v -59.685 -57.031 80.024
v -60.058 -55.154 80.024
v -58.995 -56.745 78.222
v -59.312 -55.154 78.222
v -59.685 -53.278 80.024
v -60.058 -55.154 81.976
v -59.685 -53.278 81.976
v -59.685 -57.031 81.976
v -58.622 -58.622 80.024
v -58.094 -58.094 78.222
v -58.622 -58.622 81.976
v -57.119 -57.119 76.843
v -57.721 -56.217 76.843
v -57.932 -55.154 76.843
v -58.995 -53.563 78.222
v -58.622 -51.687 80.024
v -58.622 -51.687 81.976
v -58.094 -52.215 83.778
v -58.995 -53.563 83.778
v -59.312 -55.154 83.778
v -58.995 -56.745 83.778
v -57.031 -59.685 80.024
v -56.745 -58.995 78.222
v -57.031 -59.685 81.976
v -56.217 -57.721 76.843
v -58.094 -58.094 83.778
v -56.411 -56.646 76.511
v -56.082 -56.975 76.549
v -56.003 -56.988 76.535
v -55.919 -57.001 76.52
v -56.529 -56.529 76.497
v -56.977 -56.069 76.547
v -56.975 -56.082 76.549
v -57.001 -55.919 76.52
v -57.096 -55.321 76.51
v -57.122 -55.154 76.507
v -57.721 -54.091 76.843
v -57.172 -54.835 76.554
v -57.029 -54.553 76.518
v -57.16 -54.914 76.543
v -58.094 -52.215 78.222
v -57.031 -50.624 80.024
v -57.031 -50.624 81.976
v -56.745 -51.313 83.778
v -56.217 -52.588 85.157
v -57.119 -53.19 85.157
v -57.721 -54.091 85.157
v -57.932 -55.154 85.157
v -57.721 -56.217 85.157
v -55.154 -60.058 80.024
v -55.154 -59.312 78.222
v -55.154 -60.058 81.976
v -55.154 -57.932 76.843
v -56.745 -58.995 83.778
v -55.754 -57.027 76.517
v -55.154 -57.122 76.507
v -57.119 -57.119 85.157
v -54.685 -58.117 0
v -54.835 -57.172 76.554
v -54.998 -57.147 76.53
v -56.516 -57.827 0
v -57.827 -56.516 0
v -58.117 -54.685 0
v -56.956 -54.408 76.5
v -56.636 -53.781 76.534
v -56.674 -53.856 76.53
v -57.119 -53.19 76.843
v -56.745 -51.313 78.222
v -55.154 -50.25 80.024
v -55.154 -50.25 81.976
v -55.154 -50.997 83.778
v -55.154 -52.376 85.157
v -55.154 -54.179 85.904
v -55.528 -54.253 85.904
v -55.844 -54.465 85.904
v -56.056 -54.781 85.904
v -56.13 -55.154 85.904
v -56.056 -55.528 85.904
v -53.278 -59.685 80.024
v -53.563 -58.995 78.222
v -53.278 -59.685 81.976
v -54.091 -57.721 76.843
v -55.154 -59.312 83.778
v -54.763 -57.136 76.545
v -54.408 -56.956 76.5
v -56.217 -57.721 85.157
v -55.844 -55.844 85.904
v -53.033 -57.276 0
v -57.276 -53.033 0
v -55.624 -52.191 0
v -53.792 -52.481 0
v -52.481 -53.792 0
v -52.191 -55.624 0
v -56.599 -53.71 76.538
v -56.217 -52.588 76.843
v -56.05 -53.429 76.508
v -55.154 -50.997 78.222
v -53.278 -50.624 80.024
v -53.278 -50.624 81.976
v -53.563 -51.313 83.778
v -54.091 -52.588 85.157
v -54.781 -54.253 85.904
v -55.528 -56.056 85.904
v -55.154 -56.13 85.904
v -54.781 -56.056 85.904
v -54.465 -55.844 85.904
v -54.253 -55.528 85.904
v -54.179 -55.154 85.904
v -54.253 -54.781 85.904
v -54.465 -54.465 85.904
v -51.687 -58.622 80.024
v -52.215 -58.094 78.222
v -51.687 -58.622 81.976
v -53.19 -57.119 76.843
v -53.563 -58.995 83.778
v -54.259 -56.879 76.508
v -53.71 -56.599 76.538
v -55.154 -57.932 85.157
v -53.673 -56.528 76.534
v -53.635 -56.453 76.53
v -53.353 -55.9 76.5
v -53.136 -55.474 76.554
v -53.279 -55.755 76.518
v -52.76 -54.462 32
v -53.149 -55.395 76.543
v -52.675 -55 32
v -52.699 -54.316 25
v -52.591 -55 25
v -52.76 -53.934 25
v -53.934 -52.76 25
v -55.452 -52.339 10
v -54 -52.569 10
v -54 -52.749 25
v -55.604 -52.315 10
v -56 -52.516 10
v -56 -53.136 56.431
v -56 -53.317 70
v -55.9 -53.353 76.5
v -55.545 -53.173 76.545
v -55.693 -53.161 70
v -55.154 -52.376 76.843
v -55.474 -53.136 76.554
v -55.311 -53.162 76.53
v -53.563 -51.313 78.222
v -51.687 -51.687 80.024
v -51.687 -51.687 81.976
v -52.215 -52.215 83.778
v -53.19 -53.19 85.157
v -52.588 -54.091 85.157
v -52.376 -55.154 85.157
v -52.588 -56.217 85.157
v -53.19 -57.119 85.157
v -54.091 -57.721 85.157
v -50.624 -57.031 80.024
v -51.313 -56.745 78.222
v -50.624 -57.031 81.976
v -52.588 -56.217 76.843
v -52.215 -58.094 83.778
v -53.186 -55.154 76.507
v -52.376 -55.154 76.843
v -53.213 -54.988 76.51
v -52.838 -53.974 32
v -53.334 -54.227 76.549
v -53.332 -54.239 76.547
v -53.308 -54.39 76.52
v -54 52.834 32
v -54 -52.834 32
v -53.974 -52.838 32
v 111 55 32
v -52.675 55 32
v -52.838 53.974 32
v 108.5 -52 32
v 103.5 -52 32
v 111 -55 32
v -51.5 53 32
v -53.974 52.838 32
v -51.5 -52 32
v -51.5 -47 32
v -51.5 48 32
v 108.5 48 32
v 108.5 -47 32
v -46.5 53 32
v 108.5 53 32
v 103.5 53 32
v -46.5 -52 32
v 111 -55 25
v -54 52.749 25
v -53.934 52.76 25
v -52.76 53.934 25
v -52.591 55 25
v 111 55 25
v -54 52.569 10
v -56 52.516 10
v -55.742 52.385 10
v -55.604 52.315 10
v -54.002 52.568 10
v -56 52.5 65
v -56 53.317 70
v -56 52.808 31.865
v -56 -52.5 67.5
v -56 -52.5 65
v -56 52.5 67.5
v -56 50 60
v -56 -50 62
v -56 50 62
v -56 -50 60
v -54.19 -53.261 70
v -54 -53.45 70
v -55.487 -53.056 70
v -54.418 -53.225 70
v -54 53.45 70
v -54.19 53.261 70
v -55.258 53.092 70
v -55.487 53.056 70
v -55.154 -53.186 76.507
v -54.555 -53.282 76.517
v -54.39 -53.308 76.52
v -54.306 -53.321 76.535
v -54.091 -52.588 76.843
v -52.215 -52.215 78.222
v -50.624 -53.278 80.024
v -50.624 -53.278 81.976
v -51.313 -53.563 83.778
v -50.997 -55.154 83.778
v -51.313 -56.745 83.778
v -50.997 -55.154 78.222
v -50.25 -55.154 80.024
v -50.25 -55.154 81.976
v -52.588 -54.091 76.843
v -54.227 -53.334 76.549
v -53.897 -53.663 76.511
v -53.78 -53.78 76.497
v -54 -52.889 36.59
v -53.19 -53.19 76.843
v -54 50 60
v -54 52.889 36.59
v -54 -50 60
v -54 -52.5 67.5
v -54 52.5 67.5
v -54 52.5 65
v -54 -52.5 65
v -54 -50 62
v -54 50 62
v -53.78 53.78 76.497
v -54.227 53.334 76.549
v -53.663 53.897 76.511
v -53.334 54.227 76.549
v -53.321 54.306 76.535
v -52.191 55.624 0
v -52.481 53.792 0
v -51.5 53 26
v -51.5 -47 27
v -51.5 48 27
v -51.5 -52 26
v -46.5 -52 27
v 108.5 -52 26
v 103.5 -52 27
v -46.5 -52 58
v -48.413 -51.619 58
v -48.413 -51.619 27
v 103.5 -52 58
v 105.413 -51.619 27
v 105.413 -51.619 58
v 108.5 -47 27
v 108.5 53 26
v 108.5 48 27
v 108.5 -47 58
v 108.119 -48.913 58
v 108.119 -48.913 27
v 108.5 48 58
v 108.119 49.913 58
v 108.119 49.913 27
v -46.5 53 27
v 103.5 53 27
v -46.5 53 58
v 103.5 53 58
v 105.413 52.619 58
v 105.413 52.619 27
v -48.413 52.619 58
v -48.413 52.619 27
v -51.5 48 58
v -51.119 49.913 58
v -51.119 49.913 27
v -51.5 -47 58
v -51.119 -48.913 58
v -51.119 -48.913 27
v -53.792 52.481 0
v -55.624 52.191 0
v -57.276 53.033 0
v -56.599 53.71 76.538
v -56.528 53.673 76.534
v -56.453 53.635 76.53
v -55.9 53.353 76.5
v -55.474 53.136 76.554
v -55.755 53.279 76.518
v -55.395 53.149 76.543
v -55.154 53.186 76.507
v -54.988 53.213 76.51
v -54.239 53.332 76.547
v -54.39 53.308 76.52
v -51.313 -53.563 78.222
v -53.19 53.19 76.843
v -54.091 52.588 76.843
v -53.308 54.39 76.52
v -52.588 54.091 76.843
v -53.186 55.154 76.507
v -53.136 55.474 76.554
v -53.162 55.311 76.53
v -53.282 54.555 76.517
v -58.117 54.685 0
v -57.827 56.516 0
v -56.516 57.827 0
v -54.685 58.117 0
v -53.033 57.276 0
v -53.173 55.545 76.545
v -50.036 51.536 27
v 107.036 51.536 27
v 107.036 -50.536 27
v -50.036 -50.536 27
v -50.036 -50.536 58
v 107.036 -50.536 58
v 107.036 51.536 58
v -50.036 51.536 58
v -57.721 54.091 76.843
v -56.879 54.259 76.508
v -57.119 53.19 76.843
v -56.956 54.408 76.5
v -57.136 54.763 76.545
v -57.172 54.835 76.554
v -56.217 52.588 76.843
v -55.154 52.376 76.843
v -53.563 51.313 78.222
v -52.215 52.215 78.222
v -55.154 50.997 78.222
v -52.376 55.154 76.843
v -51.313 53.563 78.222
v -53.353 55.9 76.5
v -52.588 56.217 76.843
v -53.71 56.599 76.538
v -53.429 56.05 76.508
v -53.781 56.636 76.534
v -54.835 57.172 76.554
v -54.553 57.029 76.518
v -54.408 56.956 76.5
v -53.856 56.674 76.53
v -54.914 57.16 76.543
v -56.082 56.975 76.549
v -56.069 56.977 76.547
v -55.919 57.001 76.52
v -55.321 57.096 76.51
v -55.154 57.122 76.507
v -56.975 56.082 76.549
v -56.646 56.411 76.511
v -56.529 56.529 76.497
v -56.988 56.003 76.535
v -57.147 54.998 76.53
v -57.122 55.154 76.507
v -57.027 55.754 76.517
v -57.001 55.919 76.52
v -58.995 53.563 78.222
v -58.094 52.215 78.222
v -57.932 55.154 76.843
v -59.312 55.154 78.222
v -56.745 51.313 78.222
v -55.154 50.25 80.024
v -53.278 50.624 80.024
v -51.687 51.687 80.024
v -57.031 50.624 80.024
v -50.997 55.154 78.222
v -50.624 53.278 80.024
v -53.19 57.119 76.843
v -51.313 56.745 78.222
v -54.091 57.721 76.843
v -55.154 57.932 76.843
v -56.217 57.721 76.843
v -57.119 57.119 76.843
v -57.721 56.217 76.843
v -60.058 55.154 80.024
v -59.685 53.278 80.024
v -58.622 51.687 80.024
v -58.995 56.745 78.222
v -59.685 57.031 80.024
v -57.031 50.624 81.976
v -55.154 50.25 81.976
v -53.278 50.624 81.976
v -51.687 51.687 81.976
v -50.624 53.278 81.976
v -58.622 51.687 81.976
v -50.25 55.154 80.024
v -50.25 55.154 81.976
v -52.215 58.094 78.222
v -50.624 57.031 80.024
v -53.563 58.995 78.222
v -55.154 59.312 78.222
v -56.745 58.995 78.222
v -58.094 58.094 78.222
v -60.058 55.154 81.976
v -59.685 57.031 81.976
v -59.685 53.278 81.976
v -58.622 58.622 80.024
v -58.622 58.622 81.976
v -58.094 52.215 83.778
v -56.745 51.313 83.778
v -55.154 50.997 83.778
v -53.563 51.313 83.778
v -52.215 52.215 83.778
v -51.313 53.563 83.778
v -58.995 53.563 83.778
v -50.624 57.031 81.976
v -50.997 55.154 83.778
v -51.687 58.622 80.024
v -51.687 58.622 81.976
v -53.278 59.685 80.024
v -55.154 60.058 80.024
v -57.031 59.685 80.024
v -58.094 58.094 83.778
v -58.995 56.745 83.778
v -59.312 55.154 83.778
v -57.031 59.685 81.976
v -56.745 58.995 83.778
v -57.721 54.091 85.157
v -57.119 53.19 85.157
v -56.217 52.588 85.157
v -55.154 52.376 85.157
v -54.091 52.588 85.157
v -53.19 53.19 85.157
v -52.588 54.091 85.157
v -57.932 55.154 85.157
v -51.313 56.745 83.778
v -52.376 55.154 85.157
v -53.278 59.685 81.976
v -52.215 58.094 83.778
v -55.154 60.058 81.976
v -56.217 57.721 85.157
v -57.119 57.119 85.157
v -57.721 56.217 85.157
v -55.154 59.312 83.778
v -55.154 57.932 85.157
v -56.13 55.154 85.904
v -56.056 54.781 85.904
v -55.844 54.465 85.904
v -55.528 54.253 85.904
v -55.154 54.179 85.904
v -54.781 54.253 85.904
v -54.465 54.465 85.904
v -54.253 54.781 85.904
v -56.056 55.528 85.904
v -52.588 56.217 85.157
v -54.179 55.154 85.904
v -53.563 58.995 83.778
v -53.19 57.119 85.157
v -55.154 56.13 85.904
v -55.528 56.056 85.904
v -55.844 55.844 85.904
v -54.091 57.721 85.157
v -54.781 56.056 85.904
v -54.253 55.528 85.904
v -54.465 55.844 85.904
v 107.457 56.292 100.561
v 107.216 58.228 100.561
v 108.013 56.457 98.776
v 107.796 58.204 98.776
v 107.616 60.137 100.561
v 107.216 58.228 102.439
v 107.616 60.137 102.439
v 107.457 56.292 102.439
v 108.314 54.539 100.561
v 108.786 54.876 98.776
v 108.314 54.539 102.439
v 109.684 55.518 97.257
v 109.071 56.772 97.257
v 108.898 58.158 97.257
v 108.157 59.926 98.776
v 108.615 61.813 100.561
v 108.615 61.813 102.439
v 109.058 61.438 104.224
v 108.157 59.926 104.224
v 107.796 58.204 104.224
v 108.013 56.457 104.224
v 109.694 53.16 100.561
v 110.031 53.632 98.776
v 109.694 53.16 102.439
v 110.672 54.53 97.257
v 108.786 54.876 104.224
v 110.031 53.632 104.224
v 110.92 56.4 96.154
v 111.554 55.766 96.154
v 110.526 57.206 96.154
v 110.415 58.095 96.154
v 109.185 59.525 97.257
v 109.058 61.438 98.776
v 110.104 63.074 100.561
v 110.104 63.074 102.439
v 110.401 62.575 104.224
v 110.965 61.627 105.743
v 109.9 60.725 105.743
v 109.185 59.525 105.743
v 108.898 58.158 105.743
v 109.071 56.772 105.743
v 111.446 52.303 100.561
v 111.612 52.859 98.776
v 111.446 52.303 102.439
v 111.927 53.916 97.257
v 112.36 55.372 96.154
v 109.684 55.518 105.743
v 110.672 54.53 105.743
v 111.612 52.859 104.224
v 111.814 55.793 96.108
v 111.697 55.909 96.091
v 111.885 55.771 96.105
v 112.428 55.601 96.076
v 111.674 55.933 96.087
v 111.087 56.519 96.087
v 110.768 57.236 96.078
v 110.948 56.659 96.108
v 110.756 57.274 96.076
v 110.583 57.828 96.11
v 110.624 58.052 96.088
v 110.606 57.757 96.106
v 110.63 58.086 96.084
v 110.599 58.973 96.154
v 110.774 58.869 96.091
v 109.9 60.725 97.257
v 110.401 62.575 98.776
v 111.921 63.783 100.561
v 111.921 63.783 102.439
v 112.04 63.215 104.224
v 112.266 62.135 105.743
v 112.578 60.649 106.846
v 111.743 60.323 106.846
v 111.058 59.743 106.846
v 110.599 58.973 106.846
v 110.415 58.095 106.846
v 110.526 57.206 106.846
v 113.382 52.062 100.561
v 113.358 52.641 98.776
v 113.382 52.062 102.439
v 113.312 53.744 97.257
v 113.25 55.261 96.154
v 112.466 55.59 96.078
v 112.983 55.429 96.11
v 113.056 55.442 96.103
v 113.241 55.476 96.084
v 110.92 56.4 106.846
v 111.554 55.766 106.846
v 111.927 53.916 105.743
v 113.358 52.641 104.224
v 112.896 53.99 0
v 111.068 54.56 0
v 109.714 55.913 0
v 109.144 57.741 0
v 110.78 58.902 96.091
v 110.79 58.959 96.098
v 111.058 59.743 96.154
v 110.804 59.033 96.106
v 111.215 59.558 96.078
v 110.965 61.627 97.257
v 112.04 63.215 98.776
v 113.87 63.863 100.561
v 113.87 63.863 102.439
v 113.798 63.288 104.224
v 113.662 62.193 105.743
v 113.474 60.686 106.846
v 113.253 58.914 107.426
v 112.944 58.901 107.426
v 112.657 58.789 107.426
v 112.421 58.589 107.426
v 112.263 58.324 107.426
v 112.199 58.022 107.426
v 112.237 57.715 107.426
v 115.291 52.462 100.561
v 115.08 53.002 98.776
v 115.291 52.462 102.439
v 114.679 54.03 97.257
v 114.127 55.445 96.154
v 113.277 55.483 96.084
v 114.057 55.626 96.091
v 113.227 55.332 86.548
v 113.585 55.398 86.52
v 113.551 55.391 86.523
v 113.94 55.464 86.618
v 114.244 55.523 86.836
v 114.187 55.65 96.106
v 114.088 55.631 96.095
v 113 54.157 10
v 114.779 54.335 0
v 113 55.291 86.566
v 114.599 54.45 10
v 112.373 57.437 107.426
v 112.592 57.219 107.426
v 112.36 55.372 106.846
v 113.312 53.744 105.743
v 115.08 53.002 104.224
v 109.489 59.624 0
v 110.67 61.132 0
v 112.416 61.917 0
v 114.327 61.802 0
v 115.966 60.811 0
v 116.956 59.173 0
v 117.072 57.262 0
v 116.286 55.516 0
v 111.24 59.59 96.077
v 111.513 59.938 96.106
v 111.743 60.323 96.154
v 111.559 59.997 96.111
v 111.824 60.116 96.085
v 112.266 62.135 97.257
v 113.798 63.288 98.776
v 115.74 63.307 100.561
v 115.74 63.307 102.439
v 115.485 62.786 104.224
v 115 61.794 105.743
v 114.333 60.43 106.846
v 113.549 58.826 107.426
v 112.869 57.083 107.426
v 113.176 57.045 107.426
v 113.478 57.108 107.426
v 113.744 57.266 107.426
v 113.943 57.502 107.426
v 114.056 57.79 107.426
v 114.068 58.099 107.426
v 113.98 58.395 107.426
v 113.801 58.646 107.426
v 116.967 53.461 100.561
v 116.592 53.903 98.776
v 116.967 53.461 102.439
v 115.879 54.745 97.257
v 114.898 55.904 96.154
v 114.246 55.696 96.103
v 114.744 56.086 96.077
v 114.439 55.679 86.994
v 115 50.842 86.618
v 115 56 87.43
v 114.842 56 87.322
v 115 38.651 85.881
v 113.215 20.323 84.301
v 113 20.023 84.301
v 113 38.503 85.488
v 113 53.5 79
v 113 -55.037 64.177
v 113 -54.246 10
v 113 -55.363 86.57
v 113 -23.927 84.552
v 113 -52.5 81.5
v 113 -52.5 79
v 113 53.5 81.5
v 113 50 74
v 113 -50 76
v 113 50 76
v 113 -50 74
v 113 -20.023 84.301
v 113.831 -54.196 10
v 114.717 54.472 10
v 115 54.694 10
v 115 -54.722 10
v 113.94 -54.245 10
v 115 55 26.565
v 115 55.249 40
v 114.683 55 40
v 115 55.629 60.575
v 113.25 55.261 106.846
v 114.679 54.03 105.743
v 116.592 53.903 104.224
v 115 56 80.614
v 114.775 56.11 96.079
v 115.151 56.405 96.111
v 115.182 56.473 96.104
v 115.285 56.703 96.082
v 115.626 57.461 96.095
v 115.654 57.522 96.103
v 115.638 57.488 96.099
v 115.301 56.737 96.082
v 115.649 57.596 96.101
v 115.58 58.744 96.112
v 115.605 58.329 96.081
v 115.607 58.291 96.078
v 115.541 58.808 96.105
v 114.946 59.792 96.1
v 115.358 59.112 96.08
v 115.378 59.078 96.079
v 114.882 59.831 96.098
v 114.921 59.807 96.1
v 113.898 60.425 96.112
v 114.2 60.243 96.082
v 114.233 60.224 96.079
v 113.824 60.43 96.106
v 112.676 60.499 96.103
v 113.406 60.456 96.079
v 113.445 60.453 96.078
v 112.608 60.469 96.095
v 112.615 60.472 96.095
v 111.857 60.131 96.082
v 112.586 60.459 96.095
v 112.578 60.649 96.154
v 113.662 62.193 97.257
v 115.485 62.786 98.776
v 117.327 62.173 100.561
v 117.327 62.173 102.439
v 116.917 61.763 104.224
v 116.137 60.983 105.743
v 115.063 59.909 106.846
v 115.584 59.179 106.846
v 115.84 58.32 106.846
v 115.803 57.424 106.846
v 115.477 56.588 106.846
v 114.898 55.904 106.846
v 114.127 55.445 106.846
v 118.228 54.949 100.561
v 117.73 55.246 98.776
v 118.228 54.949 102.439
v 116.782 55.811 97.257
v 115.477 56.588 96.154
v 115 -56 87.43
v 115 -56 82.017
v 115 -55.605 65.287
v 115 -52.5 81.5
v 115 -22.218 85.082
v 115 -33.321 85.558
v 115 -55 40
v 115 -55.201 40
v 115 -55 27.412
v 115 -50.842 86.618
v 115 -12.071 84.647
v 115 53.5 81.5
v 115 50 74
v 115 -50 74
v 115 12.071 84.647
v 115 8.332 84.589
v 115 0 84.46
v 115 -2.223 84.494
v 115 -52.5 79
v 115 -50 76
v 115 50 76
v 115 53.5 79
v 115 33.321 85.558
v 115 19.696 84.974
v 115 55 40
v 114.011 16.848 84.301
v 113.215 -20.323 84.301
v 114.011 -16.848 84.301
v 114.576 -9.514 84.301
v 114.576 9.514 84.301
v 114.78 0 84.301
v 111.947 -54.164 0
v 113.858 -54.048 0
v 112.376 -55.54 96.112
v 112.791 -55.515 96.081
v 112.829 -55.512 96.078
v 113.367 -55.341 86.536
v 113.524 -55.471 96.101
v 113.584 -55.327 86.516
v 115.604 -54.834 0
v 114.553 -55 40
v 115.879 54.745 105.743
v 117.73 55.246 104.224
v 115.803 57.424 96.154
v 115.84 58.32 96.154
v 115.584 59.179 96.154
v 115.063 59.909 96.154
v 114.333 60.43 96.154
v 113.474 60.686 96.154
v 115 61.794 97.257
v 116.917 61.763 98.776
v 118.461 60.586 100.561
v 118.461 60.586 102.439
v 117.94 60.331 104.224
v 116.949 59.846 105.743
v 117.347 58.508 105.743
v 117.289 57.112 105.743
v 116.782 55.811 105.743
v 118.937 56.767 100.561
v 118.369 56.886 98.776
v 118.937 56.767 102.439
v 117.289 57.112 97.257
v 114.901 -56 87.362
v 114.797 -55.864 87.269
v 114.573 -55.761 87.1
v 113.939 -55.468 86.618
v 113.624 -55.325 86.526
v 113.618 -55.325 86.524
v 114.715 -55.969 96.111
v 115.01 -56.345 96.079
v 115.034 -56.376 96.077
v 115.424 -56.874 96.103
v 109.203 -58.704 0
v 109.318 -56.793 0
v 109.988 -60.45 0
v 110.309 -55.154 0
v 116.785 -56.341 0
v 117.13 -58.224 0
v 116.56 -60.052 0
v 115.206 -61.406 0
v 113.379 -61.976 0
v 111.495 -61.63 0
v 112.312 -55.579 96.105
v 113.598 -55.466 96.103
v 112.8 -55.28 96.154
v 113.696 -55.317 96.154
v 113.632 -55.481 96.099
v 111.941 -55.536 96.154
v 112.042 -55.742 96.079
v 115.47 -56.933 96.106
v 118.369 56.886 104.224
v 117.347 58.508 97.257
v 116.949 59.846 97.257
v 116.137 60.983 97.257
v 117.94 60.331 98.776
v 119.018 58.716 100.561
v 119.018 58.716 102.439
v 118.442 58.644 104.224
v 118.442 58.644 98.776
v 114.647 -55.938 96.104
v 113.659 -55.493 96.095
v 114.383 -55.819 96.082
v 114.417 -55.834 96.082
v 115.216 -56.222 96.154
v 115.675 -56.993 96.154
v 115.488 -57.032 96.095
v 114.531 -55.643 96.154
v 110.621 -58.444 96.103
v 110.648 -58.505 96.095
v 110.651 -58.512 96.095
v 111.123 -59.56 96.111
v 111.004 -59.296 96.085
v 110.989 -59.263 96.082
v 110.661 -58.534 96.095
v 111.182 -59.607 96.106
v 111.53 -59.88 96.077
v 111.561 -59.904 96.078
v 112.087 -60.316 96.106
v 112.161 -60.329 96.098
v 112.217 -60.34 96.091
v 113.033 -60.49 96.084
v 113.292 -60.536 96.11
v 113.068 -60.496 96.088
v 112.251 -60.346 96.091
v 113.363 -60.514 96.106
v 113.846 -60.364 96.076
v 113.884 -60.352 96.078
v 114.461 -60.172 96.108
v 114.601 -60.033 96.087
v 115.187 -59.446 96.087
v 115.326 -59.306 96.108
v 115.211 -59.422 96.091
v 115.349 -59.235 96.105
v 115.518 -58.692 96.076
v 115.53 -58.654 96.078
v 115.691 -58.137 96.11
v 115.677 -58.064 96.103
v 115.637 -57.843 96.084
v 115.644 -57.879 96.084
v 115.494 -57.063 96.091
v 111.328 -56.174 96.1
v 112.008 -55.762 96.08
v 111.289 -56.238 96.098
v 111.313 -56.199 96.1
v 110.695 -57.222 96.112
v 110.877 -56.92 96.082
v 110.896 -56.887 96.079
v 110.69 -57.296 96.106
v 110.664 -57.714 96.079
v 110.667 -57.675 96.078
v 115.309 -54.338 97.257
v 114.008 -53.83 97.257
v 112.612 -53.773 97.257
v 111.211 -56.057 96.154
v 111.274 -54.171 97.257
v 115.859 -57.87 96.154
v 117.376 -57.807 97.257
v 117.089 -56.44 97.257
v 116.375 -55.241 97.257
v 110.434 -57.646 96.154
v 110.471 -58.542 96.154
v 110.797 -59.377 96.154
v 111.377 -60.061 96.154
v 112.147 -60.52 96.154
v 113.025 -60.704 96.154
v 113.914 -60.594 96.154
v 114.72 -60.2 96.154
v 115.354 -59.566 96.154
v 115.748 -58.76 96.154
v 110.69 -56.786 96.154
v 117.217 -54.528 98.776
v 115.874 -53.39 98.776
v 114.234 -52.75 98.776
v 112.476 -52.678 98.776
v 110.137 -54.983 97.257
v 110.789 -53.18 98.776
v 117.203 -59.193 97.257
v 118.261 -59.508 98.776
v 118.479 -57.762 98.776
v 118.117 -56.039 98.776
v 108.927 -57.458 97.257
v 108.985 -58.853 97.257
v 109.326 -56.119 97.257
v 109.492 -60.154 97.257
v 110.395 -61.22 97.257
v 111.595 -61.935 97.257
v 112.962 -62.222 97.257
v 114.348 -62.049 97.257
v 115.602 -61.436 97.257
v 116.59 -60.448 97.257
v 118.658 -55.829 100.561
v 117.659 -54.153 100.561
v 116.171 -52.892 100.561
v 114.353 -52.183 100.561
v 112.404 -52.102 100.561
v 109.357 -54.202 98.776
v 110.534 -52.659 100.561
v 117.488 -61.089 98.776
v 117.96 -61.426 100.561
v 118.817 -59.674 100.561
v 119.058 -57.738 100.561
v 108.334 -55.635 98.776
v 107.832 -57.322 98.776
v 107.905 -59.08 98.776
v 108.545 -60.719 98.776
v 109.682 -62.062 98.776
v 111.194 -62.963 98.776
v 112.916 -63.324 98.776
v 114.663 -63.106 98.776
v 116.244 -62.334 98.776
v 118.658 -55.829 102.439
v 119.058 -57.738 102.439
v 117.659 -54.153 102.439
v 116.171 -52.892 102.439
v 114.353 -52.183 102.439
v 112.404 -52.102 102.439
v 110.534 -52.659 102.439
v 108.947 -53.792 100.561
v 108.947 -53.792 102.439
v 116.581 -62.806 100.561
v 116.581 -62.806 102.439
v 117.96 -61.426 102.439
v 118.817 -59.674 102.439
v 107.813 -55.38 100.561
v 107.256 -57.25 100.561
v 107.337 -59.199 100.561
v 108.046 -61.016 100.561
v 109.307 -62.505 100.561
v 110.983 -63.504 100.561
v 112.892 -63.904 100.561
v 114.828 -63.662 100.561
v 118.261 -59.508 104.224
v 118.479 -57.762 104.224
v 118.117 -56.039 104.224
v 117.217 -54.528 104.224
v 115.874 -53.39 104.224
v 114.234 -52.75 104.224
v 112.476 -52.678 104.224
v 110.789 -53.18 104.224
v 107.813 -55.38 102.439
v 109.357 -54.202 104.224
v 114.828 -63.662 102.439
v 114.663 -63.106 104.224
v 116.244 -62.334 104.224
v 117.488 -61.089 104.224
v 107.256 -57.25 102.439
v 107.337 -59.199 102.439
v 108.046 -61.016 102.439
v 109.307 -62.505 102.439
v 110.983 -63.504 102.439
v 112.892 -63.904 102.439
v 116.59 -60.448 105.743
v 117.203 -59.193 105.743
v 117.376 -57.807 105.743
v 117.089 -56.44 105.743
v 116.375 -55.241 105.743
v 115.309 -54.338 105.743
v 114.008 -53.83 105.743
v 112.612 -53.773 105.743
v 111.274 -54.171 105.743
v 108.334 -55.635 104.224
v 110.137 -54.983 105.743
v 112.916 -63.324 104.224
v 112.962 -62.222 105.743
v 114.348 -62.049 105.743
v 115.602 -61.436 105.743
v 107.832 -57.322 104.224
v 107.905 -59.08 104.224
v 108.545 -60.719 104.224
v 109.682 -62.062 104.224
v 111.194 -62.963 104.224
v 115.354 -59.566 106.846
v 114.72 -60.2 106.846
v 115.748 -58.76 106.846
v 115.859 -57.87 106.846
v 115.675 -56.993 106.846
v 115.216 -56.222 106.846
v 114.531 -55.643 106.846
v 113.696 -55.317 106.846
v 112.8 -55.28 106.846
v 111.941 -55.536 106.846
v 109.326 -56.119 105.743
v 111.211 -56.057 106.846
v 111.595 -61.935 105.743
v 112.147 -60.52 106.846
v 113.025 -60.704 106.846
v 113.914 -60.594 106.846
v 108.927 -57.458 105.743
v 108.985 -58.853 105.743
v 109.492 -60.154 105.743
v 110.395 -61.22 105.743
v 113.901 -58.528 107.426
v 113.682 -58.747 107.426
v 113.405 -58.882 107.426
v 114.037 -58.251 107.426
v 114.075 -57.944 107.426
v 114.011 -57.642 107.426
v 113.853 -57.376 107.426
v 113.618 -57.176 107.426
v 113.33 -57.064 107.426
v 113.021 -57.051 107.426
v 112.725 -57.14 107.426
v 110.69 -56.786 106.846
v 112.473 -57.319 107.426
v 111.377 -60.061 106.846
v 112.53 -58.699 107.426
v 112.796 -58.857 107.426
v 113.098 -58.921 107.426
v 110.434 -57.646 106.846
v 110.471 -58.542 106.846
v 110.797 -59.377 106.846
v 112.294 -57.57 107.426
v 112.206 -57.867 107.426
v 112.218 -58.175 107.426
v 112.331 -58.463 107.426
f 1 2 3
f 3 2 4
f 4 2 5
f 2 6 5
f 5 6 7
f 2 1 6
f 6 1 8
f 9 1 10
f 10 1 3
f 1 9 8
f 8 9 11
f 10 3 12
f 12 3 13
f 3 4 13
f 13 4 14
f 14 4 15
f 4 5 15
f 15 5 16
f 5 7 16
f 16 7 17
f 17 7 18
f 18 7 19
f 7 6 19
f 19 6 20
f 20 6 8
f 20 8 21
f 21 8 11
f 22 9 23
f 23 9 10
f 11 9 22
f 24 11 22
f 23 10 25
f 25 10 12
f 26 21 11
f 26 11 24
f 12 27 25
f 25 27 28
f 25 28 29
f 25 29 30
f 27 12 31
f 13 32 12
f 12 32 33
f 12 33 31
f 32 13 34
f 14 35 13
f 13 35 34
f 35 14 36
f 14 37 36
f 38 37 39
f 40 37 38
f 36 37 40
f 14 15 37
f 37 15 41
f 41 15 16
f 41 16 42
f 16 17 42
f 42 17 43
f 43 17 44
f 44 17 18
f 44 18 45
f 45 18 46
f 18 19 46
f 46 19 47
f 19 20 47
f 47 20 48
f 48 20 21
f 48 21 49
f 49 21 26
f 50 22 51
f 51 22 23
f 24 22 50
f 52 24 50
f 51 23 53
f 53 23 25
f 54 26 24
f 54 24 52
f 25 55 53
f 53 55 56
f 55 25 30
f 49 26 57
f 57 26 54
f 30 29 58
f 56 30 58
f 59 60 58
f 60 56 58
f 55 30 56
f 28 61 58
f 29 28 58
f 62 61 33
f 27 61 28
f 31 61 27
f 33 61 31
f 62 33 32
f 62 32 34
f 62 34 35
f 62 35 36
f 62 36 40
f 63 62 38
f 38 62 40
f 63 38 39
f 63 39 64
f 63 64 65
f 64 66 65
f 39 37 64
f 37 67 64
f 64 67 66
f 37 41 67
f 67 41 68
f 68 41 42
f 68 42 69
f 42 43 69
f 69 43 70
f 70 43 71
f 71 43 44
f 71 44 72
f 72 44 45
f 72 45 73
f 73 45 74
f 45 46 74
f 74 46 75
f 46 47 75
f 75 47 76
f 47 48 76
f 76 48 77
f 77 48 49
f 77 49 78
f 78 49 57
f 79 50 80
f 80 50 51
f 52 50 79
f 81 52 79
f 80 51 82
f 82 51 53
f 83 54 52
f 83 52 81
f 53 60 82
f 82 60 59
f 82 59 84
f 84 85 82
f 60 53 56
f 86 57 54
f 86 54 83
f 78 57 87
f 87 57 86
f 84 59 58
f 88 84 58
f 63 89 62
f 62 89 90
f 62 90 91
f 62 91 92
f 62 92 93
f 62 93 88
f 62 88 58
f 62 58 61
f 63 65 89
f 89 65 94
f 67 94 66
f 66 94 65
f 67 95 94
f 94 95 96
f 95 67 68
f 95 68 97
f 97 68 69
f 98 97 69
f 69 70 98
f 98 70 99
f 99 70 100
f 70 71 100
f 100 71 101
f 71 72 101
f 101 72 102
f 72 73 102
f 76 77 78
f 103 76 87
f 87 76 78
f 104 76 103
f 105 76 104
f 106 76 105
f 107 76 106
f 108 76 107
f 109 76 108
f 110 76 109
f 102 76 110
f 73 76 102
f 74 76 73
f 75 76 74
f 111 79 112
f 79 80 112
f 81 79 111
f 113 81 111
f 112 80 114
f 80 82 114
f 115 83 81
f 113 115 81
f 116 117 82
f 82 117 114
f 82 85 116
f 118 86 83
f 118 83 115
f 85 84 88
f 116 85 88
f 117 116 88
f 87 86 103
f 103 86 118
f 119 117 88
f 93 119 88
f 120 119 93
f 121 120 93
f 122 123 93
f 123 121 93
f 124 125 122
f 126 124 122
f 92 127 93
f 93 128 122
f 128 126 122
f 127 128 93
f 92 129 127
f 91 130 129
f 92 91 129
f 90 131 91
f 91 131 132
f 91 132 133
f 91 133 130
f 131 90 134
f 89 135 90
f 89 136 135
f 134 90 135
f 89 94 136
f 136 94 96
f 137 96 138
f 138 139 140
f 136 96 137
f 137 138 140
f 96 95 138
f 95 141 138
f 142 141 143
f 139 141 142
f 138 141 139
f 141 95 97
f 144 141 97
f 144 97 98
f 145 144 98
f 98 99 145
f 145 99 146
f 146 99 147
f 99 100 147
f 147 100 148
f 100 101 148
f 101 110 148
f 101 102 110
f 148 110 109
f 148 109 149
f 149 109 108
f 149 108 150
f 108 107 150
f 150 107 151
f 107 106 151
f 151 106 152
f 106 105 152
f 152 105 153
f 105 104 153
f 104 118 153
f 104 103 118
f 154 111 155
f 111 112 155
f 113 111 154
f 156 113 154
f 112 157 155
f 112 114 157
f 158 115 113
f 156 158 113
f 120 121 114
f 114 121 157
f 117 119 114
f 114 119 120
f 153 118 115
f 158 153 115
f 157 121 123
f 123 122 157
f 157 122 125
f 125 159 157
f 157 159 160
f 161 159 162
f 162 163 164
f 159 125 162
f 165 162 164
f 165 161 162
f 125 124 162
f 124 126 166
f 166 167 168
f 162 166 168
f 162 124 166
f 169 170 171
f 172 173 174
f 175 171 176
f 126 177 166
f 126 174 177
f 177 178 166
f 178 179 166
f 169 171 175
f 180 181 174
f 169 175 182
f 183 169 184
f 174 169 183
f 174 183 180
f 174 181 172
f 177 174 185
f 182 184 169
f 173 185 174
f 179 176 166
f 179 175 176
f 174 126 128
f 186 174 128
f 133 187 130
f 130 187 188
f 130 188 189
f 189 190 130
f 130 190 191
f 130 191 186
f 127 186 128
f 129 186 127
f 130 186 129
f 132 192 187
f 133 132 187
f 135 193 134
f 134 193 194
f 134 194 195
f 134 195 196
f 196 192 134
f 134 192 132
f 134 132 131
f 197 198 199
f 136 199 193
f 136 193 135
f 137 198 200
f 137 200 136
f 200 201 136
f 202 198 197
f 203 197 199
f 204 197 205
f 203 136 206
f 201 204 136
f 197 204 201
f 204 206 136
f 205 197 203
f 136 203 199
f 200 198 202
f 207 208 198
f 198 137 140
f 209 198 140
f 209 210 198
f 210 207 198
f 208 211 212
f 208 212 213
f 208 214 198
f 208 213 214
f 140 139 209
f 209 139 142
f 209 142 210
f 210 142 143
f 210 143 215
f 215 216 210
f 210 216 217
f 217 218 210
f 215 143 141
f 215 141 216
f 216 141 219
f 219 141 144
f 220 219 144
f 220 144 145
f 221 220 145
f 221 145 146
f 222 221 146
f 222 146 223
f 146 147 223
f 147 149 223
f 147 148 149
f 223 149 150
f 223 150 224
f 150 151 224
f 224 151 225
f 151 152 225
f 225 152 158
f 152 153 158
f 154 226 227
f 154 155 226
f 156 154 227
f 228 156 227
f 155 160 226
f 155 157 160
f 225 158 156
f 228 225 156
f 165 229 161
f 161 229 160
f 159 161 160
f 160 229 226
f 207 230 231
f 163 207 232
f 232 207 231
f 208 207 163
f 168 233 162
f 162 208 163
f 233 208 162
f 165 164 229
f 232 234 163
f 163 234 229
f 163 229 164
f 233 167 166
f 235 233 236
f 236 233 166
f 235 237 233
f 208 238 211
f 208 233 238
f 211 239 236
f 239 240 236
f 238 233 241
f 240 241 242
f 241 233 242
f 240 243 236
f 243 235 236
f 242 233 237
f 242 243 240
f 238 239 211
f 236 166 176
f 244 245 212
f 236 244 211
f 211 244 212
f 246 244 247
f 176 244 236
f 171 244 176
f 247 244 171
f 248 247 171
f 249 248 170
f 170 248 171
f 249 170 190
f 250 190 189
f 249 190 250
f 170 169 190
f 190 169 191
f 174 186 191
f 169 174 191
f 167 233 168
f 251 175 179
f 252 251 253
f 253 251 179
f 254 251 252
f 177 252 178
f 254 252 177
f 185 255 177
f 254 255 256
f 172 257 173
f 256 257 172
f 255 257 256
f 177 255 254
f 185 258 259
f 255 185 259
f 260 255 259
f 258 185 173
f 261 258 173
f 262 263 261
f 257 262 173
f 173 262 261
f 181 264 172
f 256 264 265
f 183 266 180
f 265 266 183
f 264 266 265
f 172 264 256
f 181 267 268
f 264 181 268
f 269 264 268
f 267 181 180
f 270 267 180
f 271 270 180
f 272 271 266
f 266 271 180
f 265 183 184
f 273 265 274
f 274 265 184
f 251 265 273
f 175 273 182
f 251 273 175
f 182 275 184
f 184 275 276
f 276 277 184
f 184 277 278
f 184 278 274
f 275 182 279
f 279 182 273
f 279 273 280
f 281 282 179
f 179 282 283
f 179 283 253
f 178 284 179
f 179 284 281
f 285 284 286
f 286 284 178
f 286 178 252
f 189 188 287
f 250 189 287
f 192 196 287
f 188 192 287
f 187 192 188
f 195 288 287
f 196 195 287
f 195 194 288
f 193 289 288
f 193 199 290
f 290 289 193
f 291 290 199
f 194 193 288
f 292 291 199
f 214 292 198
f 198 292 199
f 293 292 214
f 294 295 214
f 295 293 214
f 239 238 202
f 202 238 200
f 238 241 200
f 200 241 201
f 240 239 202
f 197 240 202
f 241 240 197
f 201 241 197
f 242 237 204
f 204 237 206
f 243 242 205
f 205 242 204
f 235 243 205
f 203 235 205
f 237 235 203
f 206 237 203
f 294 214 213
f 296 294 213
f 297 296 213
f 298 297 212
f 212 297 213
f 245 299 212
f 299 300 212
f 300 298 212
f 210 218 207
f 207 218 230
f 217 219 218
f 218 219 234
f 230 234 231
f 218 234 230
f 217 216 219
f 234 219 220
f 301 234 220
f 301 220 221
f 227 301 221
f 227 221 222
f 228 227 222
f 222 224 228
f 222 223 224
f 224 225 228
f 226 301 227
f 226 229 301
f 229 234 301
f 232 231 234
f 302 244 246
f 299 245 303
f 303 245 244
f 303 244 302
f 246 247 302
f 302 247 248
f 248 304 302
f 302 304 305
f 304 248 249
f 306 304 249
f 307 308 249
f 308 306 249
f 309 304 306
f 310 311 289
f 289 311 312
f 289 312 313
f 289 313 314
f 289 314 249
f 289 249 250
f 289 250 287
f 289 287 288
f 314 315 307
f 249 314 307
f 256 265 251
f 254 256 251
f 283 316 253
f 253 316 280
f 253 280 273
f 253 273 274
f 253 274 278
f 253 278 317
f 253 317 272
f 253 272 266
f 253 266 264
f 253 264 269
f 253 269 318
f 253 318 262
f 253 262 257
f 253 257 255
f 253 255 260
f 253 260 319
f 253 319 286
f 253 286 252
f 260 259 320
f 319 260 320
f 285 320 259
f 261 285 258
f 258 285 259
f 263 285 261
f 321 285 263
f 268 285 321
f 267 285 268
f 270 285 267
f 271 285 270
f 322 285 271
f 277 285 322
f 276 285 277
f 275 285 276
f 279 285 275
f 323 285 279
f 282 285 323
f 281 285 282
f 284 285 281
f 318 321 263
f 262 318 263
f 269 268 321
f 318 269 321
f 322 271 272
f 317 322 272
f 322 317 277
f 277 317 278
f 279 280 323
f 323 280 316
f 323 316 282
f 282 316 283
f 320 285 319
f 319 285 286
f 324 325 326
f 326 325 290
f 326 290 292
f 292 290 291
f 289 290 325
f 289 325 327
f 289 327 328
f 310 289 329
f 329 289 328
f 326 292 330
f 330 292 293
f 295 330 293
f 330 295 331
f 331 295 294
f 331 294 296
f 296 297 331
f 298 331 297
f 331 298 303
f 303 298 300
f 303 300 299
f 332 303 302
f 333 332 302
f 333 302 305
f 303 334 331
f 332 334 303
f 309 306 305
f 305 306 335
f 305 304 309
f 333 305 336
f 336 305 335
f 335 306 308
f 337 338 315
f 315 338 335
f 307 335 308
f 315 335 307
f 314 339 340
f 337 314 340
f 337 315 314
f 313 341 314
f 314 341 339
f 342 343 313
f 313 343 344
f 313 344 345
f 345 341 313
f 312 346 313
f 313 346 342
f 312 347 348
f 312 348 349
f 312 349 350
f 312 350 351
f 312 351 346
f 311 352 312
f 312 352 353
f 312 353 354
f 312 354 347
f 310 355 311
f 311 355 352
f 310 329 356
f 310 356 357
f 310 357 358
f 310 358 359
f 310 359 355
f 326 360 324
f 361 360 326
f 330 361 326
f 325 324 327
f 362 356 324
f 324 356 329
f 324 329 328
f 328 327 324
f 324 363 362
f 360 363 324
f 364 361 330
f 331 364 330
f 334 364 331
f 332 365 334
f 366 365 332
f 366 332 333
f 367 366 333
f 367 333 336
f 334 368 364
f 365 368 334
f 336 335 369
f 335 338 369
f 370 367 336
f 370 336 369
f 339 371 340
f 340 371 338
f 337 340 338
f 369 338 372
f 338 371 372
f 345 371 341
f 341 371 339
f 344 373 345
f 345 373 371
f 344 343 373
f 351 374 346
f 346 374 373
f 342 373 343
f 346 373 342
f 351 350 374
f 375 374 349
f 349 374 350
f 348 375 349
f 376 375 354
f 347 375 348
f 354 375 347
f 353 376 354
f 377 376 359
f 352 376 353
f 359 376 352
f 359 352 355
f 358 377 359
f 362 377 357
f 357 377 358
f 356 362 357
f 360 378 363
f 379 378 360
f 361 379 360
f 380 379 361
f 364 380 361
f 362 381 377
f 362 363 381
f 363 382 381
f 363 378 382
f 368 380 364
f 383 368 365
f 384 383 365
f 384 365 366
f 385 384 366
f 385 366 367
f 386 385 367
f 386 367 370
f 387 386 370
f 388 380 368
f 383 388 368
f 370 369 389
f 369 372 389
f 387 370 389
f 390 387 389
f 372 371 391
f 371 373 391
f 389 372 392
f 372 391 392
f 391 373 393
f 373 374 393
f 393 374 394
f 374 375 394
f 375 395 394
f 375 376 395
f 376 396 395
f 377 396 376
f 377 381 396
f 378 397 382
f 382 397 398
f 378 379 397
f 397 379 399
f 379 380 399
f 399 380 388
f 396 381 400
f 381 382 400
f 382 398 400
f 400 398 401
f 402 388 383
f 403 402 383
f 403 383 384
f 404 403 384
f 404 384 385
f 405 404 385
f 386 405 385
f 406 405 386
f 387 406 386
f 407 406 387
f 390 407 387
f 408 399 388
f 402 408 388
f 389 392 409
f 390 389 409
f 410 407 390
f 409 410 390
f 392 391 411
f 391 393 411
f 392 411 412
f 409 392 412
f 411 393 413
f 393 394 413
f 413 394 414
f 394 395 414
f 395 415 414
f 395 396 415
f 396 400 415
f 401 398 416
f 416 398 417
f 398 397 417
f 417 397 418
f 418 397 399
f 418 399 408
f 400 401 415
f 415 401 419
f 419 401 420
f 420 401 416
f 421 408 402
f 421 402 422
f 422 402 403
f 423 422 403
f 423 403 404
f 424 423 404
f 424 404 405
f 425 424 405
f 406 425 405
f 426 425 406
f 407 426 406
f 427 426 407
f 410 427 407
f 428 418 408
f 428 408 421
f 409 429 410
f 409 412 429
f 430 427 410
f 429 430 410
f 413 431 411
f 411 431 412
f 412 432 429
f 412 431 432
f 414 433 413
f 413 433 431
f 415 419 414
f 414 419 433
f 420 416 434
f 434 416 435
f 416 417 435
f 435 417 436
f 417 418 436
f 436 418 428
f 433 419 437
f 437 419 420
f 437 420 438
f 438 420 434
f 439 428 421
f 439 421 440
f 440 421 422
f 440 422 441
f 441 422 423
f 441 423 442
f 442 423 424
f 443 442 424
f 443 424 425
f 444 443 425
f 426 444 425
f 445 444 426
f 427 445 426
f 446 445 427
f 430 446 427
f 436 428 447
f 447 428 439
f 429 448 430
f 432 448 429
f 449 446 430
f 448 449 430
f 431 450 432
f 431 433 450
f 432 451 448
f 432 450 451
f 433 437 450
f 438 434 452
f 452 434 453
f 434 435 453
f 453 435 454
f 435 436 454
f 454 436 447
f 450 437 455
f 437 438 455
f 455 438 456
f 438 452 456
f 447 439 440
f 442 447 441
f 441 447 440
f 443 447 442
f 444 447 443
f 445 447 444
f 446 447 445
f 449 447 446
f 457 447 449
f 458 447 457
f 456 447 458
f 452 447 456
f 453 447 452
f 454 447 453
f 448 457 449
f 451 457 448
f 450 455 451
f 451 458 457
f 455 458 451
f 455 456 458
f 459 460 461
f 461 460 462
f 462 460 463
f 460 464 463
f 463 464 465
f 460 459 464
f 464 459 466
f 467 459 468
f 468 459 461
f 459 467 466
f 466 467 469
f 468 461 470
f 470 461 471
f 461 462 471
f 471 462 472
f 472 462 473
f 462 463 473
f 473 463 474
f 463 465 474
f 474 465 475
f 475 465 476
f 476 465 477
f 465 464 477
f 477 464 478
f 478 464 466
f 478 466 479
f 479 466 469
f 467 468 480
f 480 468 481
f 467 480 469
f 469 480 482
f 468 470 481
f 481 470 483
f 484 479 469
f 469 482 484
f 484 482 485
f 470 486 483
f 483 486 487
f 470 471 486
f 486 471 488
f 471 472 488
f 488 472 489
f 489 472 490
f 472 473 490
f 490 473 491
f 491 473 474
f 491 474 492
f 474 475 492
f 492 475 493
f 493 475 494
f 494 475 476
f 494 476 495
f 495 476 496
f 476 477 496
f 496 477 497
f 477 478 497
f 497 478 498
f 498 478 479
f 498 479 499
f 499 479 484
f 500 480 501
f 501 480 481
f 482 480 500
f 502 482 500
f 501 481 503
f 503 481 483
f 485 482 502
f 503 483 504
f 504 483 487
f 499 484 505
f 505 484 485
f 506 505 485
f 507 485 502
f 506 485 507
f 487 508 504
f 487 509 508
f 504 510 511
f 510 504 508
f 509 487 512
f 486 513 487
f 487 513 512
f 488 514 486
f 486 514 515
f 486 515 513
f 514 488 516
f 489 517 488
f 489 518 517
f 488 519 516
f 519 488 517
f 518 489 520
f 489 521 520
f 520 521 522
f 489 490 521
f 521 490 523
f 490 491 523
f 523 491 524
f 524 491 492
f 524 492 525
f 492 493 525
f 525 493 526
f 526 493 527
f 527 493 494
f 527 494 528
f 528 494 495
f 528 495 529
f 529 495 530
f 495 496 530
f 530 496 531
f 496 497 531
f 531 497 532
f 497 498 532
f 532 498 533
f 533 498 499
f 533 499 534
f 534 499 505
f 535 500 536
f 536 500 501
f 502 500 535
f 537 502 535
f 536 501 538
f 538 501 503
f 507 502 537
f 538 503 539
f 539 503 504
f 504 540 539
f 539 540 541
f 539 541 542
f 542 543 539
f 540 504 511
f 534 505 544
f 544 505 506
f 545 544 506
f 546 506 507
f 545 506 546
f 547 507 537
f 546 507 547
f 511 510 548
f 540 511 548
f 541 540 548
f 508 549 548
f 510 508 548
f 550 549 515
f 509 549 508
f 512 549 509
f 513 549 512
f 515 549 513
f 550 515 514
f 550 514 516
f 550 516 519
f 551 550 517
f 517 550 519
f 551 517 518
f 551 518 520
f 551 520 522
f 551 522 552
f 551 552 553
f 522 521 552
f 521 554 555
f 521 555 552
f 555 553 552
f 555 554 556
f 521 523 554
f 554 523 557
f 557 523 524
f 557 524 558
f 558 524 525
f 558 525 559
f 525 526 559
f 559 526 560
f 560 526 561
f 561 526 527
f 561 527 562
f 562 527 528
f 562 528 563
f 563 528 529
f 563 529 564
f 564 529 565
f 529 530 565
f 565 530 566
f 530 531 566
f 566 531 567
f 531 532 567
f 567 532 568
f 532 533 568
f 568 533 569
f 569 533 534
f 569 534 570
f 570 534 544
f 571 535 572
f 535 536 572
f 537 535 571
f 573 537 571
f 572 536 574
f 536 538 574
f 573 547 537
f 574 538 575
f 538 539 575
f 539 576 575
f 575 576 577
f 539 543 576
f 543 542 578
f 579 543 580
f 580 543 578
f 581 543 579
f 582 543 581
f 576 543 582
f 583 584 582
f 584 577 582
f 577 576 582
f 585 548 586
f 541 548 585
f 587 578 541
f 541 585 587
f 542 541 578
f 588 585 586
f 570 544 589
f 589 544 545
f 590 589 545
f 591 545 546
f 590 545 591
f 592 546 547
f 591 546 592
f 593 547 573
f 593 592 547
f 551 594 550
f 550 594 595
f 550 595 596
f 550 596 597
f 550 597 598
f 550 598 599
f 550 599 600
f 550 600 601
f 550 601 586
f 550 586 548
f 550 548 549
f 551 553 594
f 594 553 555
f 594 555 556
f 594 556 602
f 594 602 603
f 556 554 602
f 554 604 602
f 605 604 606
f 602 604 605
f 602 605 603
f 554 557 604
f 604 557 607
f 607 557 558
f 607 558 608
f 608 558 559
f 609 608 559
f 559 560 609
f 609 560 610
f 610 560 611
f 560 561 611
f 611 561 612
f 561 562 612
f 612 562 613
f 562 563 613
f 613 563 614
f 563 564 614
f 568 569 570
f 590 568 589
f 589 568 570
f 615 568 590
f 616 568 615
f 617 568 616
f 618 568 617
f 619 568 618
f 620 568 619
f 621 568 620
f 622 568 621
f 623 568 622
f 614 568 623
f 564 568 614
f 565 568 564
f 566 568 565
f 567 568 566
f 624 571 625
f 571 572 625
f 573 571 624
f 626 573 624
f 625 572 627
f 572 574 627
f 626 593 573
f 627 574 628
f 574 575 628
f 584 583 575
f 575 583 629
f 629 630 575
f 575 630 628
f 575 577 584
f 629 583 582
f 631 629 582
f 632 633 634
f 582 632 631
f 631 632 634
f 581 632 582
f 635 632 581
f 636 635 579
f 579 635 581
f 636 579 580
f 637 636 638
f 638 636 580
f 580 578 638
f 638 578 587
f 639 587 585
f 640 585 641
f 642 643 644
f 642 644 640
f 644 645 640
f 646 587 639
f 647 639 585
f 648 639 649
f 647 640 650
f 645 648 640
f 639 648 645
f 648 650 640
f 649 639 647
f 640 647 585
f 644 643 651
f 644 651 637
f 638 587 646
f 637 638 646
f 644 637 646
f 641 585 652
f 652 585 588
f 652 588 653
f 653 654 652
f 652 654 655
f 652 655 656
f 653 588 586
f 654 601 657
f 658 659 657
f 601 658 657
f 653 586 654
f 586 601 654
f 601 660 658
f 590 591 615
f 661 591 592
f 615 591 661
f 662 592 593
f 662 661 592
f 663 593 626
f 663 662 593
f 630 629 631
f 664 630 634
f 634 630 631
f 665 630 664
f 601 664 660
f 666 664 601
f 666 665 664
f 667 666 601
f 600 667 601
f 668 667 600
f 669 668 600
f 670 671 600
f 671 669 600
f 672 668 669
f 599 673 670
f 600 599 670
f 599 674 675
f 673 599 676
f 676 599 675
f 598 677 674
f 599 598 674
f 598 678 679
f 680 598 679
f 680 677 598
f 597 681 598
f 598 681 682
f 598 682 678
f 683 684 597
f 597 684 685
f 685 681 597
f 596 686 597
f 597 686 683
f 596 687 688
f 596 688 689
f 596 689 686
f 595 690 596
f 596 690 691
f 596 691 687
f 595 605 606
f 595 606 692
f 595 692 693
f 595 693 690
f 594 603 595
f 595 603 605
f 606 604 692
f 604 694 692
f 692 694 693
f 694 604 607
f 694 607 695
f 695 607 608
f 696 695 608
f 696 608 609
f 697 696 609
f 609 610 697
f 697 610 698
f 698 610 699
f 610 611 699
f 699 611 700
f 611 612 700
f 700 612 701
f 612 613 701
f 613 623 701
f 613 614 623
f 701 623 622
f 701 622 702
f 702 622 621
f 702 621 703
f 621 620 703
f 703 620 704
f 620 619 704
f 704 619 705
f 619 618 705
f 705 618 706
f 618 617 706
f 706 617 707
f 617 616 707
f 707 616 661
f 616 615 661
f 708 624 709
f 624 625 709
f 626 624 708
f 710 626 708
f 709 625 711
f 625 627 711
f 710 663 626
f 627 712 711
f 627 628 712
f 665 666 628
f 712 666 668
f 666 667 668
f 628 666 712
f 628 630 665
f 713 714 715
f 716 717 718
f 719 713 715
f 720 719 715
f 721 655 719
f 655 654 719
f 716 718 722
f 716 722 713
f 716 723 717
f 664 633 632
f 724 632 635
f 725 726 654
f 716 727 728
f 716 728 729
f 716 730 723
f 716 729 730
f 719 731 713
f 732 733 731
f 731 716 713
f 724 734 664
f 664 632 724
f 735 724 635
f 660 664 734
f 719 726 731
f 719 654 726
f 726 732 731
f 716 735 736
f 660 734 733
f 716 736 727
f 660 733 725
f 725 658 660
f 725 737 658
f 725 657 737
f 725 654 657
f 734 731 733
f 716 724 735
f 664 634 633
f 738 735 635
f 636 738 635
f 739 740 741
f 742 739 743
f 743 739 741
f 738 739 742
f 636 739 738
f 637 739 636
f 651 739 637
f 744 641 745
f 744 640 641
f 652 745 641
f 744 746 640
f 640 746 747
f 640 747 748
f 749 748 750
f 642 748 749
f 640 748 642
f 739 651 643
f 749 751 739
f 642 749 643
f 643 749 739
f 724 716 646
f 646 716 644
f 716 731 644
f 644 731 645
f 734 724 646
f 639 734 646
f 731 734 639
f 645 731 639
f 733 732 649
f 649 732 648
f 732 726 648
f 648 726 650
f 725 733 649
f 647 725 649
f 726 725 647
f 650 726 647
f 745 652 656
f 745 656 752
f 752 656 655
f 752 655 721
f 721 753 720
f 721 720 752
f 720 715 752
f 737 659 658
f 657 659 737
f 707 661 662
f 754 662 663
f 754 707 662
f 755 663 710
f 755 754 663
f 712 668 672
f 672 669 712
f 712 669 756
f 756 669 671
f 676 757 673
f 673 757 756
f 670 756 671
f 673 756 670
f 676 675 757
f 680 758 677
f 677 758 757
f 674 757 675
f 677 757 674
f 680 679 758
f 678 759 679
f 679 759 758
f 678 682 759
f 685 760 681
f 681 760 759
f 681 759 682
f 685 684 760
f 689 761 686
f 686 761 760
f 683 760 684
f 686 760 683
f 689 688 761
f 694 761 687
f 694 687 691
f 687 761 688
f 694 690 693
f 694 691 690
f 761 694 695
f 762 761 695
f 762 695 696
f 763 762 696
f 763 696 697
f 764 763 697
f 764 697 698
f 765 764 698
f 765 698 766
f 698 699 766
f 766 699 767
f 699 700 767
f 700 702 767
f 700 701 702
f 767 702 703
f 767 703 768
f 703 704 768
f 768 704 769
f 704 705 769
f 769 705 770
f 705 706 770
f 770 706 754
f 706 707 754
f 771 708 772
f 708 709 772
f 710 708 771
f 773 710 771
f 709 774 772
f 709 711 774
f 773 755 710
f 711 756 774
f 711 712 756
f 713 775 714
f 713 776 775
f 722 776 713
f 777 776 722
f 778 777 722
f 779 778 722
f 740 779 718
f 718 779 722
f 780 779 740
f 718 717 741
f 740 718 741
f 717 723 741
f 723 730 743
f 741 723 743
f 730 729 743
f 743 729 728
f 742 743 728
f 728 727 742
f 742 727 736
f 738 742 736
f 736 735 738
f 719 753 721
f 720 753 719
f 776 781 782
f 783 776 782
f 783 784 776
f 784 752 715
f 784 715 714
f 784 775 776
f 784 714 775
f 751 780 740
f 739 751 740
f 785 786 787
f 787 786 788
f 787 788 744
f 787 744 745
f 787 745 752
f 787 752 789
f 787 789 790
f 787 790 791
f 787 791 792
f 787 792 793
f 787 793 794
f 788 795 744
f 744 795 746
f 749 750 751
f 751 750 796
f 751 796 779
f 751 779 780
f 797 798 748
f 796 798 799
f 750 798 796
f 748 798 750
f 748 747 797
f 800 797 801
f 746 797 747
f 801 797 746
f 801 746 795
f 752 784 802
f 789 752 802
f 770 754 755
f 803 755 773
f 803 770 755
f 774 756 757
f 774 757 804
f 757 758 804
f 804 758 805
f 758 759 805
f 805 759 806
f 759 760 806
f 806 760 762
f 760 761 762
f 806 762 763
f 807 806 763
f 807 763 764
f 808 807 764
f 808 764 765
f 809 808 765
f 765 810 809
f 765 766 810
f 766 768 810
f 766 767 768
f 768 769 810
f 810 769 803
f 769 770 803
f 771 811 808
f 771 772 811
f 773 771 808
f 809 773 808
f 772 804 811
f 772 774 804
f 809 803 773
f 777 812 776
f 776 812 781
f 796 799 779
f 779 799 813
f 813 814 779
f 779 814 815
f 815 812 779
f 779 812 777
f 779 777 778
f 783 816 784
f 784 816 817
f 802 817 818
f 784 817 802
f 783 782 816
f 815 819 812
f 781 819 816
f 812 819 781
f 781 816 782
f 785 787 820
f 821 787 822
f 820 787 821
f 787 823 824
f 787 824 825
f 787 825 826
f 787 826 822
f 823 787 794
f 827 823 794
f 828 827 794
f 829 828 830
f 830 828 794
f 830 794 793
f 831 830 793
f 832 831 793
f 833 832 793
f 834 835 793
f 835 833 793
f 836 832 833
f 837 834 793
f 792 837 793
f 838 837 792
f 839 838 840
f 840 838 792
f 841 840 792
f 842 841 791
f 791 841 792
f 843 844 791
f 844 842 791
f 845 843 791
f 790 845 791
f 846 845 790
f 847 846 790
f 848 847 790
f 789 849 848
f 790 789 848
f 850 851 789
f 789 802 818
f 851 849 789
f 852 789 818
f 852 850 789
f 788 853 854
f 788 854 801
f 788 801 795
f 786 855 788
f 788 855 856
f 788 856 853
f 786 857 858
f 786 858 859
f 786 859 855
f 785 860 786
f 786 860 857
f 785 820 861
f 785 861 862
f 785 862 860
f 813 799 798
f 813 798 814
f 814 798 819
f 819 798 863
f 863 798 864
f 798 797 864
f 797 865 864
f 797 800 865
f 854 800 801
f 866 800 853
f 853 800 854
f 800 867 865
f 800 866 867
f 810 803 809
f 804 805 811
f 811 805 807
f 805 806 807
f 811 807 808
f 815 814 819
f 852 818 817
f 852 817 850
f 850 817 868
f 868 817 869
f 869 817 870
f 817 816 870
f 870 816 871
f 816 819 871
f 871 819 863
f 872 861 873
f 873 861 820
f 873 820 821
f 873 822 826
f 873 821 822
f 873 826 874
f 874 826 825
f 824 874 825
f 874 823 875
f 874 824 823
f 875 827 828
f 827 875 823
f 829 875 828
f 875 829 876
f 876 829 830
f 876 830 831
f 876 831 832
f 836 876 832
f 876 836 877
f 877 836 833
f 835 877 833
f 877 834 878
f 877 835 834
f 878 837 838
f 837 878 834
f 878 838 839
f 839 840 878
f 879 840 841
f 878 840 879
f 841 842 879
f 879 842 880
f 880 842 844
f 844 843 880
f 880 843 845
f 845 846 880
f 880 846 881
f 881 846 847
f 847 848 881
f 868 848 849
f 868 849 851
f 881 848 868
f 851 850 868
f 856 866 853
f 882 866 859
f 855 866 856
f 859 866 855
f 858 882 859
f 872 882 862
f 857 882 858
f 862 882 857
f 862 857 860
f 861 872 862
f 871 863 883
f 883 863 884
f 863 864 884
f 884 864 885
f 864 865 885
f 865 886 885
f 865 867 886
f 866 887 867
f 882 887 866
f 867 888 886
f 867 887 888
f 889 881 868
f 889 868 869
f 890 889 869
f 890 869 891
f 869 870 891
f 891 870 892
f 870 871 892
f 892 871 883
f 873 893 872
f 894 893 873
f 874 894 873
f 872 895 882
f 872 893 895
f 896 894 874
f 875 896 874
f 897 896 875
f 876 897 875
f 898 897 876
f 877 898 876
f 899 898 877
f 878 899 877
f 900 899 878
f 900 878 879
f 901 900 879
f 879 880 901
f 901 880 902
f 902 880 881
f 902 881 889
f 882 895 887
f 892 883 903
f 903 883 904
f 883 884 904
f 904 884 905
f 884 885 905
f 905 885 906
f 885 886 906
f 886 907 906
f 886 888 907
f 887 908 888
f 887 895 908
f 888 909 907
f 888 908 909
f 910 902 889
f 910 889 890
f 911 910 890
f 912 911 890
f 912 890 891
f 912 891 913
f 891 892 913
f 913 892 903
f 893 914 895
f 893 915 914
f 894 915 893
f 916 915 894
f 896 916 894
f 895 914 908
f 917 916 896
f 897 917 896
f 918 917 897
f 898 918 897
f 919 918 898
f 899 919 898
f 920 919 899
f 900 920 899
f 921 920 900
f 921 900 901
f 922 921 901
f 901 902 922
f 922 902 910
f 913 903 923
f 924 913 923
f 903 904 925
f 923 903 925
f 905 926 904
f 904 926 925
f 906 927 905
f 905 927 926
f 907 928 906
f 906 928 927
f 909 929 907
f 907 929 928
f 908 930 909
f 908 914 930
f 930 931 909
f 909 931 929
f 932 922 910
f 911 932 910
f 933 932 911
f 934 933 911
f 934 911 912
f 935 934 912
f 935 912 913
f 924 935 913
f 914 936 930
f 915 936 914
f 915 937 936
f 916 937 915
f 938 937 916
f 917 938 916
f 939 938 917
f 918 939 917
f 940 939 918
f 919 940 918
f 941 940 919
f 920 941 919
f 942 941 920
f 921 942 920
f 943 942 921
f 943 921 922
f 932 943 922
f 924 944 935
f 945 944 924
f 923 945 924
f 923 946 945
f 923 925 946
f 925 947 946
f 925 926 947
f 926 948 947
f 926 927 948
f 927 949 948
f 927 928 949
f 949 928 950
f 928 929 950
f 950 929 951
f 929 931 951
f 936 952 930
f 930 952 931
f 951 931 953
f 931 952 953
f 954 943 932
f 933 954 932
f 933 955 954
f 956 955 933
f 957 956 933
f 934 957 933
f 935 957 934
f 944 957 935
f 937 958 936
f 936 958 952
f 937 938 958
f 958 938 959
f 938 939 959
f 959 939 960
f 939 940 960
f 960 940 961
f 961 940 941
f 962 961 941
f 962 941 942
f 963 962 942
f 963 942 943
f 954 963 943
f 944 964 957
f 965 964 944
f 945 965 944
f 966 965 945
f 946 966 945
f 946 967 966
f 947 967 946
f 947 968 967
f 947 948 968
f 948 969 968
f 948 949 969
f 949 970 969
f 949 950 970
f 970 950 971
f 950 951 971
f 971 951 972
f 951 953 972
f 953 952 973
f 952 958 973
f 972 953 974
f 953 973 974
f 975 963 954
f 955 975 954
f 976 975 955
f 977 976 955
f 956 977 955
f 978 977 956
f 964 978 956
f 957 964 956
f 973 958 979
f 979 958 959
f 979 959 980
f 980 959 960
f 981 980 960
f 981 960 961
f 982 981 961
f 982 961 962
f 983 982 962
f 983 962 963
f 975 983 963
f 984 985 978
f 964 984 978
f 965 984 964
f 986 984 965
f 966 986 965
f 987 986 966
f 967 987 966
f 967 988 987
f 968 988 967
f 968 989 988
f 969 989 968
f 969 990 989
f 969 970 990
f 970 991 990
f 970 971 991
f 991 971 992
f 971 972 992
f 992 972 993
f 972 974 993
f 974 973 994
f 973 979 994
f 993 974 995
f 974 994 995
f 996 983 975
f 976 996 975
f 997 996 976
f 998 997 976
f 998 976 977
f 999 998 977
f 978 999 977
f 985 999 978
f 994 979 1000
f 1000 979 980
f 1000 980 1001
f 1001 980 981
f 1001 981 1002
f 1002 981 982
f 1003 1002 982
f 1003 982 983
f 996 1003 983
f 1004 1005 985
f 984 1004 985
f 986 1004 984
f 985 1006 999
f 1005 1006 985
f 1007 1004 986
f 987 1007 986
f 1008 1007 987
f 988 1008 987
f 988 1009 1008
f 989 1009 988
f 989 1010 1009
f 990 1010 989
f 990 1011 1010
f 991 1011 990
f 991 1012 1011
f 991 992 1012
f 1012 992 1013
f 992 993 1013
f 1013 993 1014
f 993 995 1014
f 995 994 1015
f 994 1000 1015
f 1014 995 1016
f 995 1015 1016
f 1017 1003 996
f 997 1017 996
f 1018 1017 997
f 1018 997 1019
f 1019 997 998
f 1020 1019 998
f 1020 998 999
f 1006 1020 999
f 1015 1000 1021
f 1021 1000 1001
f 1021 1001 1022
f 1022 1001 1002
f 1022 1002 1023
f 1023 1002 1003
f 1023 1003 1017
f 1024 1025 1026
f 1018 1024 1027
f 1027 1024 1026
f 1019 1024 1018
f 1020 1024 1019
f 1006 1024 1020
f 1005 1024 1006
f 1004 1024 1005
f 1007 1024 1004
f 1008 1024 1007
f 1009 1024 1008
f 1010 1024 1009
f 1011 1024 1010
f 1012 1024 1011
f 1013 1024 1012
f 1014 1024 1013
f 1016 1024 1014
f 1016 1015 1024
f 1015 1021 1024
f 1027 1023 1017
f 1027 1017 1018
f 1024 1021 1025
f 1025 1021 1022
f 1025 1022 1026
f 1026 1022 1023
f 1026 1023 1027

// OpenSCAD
//Yea Won Yoon, Nija Kurien
//B3
//903076043
//yyoon75/yw1013@gatech.edu
//I worked on the homework assignment alone, using only this semester's course materials.


//Because I wasn't able to come up with any cool idea, I asked my boyfriend what would he want if I can make anything. He said he wants a bed because his bed is too squeaky. So I made a bed!

//frame
translate([-14,5,25]) // I was just moving around the frame.
difference(){
	translate([-40,-60,0]) color("Crimson",1) cube([165,110,7]);
	translate([-37.5,-57,1]) color("Crimson",1) cube([160,105,10]);
} //Difference subtracts further shapes from the first shape .

//I made a hallow box so I can fit the mattress in. 


//shorter bed legs 
rotate(45) //Because of frame, I had to rotate legs.
	for ( i = [0:1]) {
		rotate(i*90/1)
			translate([0,78,0])
				union(){
					translate([0,0,81]) color("Red",1) sphere(r = 5);
					color("DarkRed",1) cylinder(h = 80, r1 = 3, r2 = 2);
				} //Union combines shapes that are in {}.
	}
	
//longer bed legs
rotate(45)
translate([121,-121,0])
	for ( i = [0:1]) {
		rotate(i*90/1)
			translate([0,82,0])
				union(){
					translate([0,0,101.5]) color("Red",1) sphere(r = 6);
					color("DarkRed",1) cylinder(h = 100, r1 = 4, r2 = 2.5);
				}
	}

//I used for loop so I can make two bed legs in one function. I didn't combine shorter bed legs and longer bed legs because there sizes are different. To decorate more, I added spheres on top of the bed leg.


//mattress
translate([-46.5,-47,27])
	color("DeepPink",1) minkowski() {
   		cube([150,95,1]);
    		cylinder(r=5,h=30);
	} // Minkowski is used to make rounded corners for mattress.

//I made a mattress for my bed!


//side frame
legDistance = 110; //This is my assigned variable for if statement. 

if (legDistance == 110) {
	union(){
		translate([113,-55,10]) color("Crimson",1) cube([2,110,37]);
		difference(){
			translate([113,-56,40]) color("Crimson",1) cube([2,112,60]);
			translate([113,0,96]) scale([2,23,3]) sphere(r=4);
			translate([112,-52.5,79]) cube([4,106,2.5]);
			translate([112,-50,74]) cube([4,100,2.0]);
		}
	}
	difference(){
		translate([-56,-55,10]) color("Crimson",1) cube([2,110,60]);
		translate([-58,-52.5,65]) cube([5,105,2.5]);
		translate([-58,-50,60]) cube([5,100,2.0]);
	}
} else {
	cube([0,0,0]);
}

//If leg distance is not 110, it won't make side bed frames because it won't fit. If leg distance is 110, it will make perfect side frame with simple design.
